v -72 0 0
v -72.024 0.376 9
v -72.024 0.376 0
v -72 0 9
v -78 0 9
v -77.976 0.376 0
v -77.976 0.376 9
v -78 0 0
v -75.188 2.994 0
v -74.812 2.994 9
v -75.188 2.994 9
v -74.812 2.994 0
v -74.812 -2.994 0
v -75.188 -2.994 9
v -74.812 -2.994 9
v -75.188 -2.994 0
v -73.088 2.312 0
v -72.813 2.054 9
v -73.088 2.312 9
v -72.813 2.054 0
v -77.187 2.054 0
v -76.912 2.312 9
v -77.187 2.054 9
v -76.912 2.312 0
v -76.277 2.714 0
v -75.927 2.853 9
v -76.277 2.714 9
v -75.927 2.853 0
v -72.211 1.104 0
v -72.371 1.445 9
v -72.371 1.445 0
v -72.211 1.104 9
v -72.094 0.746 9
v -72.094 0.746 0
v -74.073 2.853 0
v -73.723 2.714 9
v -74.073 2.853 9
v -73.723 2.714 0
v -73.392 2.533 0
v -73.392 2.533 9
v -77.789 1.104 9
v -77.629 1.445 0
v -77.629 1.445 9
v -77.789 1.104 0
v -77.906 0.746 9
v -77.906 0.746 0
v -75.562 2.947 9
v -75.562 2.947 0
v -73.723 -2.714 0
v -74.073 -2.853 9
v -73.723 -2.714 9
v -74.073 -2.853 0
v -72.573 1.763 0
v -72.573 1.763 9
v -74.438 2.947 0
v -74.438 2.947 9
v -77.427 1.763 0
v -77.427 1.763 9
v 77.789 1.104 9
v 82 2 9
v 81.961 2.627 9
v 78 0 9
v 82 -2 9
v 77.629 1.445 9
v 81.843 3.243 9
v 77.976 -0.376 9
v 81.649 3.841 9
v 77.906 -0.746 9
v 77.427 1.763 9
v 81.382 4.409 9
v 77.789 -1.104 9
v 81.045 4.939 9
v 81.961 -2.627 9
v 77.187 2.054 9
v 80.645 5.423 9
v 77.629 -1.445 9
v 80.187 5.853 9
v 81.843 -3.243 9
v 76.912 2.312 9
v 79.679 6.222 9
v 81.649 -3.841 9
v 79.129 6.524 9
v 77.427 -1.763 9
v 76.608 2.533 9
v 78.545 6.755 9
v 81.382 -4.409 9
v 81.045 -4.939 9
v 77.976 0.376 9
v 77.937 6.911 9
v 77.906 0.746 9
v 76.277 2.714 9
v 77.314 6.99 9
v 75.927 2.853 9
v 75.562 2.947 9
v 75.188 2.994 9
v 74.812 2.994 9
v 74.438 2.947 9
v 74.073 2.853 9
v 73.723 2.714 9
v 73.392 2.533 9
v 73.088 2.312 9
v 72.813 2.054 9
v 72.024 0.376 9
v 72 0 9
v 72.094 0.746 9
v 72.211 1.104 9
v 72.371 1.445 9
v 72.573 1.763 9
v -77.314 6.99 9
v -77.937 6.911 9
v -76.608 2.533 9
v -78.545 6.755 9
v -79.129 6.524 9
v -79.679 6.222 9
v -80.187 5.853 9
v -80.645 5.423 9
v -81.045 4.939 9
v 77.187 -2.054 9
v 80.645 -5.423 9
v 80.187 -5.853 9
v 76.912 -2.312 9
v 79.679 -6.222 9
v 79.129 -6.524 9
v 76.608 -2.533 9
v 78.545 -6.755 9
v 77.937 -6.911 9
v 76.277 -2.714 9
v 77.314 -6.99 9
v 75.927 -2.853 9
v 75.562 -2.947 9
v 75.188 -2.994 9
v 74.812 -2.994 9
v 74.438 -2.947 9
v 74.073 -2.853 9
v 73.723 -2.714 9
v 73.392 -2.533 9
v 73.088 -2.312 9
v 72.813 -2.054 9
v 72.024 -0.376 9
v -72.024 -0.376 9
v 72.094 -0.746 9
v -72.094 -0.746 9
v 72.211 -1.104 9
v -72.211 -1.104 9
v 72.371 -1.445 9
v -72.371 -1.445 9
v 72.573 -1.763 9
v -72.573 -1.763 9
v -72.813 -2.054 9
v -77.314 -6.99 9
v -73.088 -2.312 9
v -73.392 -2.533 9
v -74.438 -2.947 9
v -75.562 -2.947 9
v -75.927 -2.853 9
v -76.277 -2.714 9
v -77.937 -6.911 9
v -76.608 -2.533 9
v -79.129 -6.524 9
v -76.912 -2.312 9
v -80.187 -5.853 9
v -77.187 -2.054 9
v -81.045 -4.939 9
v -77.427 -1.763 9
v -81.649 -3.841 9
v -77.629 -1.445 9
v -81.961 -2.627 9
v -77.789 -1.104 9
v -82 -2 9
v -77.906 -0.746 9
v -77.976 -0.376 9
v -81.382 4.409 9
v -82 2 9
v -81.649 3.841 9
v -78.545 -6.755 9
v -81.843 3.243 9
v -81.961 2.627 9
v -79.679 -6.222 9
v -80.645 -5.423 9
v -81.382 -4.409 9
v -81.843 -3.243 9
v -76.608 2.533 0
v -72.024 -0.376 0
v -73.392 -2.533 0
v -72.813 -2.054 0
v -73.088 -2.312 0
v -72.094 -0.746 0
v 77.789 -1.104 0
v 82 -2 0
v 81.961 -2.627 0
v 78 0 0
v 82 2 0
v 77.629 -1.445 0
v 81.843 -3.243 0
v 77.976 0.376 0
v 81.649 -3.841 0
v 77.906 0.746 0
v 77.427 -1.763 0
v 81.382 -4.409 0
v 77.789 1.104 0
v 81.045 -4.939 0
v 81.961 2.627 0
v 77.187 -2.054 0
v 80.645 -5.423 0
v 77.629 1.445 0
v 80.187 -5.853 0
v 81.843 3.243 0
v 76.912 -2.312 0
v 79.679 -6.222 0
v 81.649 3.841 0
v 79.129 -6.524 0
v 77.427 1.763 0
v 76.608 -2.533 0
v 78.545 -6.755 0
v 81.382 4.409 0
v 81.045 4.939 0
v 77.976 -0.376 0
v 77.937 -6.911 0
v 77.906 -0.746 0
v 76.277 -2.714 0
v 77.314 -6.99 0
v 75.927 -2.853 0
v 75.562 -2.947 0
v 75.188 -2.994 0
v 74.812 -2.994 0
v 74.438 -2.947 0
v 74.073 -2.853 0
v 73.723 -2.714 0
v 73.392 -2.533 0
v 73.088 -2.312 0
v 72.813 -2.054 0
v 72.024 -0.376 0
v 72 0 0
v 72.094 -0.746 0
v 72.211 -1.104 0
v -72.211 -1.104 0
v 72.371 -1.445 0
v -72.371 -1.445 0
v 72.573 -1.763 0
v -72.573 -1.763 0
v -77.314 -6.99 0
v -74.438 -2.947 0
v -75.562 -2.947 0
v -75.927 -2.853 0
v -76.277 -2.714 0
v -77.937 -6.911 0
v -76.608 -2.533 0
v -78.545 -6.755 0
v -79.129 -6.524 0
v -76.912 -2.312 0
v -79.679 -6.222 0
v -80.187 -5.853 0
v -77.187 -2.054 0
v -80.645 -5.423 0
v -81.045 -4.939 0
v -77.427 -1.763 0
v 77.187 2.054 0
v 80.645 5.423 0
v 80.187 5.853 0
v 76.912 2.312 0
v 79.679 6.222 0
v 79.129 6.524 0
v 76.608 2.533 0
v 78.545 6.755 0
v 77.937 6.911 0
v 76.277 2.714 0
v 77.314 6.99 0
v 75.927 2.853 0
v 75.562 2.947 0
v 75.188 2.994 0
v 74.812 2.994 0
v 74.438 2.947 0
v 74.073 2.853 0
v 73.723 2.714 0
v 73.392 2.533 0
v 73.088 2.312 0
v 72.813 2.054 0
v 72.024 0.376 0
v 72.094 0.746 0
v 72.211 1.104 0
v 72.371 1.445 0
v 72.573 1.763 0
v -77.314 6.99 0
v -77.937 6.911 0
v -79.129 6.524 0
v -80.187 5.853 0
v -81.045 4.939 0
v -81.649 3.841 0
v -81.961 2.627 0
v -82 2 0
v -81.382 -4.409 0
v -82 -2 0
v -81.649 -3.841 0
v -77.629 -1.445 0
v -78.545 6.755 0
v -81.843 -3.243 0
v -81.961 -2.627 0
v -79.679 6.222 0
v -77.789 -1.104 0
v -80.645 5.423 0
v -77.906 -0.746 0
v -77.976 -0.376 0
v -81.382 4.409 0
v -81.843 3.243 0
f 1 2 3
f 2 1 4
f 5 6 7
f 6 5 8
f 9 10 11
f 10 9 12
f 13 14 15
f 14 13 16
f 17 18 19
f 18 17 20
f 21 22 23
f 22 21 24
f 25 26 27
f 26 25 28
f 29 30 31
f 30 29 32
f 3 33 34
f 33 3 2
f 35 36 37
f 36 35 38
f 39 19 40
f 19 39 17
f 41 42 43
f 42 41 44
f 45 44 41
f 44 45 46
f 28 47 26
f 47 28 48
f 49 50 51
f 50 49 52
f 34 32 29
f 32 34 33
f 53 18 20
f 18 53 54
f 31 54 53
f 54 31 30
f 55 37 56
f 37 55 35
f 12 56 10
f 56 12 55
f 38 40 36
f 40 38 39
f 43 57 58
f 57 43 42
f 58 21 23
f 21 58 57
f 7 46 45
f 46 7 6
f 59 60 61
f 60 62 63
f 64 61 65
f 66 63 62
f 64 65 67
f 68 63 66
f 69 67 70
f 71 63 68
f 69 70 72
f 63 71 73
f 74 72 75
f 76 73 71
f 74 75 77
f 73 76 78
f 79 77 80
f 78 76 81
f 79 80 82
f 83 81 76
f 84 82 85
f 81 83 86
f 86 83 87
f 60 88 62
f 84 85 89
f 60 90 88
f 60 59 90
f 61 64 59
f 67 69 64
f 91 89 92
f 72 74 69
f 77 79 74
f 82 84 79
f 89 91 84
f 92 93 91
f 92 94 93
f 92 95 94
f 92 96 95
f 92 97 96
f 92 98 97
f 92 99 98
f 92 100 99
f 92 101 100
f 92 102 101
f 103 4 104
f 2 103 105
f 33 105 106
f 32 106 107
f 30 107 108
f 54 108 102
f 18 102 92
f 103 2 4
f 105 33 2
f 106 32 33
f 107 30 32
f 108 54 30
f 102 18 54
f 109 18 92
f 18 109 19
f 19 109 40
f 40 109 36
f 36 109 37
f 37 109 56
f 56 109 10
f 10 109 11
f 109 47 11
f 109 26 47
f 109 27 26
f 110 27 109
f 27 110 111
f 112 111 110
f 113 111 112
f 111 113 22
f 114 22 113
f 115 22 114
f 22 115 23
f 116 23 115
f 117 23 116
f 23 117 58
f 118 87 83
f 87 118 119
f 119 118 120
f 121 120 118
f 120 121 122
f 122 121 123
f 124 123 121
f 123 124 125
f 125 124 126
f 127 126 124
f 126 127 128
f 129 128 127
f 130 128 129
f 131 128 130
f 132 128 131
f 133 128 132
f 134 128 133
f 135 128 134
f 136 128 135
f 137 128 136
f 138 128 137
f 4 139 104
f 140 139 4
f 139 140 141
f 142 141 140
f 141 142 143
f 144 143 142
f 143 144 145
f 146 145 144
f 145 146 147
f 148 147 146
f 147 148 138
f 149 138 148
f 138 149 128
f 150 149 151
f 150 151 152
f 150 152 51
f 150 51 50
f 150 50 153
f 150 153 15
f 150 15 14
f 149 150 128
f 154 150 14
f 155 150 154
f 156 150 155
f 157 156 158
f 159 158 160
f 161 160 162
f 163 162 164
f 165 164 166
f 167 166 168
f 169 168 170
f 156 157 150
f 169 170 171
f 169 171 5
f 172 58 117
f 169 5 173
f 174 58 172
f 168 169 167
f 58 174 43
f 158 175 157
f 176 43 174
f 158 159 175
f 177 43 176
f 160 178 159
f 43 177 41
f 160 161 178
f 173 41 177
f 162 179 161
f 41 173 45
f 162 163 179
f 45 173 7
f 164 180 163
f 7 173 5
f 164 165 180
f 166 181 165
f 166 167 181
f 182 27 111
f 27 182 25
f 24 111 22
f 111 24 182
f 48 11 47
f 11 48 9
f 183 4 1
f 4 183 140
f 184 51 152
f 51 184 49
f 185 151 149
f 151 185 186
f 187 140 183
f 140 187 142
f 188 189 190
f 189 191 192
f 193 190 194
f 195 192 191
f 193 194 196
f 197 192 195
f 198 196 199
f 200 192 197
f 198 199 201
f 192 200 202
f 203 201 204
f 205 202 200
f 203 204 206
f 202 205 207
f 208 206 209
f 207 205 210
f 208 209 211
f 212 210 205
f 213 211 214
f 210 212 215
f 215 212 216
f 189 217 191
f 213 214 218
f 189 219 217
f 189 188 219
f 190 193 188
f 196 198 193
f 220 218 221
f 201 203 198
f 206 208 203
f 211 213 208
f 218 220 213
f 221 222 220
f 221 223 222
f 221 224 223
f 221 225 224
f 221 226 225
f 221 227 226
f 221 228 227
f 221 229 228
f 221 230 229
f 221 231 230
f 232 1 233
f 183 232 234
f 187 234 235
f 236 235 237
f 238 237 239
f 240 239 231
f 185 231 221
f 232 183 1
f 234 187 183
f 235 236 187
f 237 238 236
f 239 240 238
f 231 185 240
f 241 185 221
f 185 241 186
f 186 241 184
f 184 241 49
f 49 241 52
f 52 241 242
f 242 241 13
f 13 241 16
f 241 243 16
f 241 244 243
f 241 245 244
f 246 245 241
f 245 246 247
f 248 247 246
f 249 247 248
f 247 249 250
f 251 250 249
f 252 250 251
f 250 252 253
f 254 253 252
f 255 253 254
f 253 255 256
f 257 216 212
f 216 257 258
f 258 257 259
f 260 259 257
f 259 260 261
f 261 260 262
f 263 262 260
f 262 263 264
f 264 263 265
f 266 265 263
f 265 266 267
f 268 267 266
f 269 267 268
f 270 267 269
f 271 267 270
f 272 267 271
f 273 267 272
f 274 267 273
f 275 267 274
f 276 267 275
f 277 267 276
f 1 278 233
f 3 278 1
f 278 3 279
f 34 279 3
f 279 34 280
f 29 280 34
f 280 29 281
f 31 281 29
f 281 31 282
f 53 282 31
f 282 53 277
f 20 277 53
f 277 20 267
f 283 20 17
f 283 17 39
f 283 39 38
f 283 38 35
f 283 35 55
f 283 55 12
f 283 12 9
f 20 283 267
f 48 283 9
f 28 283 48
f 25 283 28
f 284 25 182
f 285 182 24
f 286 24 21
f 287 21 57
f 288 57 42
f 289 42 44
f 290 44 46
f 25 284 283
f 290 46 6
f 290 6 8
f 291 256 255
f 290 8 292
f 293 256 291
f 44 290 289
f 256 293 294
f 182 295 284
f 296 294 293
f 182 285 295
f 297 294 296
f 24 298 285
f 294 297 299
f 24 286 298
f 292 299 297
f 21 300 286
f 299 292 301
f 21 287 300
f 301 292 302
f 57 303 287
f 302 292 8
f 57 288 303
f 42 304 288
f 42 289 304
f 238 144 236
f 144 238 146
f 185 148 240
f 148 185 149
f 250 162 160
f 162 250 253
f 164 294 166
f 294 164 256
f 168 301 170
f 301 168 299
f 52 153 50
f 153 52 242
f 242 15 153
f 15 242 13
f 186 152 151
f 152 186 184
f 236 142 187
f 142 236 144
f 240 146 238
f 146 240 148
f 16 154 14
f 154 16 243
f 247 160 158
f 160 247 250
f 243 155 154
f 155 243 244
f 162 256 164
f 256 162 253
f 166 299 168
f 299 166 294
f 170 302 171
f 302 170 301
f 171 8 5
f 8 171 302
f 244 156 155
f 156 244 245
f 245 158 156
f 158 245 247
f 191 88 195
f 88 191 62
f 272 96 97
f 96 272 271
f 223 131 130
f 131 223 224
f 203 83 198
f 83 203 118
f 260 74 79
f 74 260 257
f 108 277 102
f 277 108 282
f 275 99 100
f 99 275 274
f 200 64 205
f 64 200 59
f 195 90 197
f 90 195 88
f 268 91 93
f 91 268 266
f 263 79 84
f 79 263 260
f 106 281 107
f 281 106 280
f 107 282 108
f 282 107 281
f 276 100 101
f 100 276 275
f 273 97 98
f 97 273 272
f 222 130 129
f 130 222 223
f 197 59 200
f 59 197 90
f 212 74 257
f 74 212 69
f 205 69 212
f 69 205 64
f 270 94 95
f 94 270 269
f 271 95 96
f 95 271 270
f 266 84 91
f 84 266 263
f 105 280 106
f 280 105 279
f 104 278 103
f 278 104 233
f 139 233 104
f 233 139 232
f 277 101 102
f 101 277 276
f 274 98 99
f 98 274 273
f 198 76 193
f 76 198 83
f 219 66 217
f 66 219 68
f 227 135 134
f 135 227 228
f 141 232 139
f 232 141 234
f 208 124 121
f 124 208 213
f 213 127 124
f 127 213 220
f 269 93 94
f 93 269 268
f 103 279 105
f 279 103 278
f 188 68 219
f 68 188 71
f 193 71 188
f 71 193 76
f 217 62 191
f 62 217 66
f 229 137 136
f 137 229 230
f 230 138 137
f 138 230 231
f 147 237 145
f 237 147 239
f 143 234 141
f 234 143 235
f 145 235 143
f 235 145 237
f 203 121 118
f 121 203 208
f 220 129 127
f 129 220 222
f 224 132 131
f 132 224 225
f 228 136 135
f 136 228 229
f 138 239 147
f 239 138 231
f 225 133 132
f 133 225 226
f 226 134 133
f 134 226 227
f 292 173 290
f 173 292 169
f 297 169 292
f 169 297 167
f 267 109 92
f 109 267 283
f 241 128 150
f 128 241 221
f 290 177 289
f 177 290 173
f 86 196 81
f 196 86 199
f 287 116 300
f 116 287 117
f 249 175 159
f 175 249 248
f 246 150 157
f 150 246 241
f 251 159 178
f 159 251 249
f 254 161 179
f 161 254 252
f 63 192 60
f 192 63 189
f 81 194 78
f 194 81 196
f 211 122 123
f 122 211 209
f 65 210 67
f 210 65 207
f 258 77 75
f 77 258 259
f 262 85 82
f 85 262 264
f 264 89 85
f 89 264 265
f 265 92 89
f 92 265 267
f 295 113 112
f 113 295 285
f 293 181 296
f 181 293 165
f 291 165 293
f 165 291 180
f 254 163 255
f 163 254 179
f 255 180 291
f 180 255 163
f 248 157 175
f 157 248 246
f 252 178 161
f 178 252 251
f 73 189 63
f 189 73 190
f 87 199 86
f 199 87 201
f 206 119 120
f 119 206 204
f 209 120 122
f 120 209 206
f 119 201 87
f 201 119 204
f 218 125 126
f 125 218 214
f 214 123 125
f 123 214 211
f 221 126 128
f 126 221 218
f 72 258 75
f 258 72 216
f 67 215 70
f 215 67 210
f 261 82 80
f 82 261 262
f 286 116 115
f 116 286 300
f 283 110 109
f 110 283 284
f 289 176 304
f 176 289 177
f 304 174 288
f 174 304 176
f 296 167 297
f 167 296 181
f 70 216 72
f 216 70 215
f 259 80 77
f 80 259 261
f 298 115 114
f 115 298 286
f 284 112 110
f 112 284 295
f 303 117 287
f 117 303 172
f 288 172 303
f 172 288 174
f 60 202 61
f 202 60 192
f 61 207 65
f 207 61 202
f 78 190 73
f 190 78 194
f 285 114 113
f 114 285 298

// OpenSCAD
$fn = 50;


difference() {
	union() {
		hull() {
			translate(v = [-77.0000000000, 2.0000000000, 0]) {
				cylinder(h = 9, r = 5);
			}
			translate(v = [77.0000000000, 2.0000000000, 0]) {
				cylinder(h = 9, r = 5);
			}
			translate(v = [-77.0000000000, -2.0000000000, 0]) {
				cylinder(h = 9, r = 5);
			}
			translate(v = [77.0000000000, -2.0000000000, 0]) {
				cylinder(h = 9, r = 5);
			}
		}
	}
	union() {
		translate(v = [-75.0000000000, 0.0000000000, 0]) {
			cylinder(h = 9, r = 3.0000000000);
		}
		translate(v = [75.0000000000, 0.0000000000, 0]) {
			cylinder(h = 9, r = 3.0000000000);
		}
		translate(v = [-75.0000000000, 0.0000000000, 0]) {
			cylinder(h = 9, r = 1.5000000000);
		}
		translate(v = [75.0000000000, 0.0000000000, 0]) {
			cylinder(h = 9, r = 1.5000000000);
		}
		translate(v = [-75.0000000000, 0.0000000000, 0]) {
			cylinder(h = 9, r = 1.5000000000);
		}
		translate(v = [75.0000000000, 0.0000000000, 0]) {
			cylinder(h = 9, r = 1.5000000000);
		}
		translate(v = [-75.0000000000, 0.0000000000, 0]) {
			cylinder(h = 9, r = 1.5000000000);
		}
		translate(v = [75.0000000000, 0.0000000000, 0]) {
			cylinder(h = 9, r = 1.5000000000);
		}
	}
}
